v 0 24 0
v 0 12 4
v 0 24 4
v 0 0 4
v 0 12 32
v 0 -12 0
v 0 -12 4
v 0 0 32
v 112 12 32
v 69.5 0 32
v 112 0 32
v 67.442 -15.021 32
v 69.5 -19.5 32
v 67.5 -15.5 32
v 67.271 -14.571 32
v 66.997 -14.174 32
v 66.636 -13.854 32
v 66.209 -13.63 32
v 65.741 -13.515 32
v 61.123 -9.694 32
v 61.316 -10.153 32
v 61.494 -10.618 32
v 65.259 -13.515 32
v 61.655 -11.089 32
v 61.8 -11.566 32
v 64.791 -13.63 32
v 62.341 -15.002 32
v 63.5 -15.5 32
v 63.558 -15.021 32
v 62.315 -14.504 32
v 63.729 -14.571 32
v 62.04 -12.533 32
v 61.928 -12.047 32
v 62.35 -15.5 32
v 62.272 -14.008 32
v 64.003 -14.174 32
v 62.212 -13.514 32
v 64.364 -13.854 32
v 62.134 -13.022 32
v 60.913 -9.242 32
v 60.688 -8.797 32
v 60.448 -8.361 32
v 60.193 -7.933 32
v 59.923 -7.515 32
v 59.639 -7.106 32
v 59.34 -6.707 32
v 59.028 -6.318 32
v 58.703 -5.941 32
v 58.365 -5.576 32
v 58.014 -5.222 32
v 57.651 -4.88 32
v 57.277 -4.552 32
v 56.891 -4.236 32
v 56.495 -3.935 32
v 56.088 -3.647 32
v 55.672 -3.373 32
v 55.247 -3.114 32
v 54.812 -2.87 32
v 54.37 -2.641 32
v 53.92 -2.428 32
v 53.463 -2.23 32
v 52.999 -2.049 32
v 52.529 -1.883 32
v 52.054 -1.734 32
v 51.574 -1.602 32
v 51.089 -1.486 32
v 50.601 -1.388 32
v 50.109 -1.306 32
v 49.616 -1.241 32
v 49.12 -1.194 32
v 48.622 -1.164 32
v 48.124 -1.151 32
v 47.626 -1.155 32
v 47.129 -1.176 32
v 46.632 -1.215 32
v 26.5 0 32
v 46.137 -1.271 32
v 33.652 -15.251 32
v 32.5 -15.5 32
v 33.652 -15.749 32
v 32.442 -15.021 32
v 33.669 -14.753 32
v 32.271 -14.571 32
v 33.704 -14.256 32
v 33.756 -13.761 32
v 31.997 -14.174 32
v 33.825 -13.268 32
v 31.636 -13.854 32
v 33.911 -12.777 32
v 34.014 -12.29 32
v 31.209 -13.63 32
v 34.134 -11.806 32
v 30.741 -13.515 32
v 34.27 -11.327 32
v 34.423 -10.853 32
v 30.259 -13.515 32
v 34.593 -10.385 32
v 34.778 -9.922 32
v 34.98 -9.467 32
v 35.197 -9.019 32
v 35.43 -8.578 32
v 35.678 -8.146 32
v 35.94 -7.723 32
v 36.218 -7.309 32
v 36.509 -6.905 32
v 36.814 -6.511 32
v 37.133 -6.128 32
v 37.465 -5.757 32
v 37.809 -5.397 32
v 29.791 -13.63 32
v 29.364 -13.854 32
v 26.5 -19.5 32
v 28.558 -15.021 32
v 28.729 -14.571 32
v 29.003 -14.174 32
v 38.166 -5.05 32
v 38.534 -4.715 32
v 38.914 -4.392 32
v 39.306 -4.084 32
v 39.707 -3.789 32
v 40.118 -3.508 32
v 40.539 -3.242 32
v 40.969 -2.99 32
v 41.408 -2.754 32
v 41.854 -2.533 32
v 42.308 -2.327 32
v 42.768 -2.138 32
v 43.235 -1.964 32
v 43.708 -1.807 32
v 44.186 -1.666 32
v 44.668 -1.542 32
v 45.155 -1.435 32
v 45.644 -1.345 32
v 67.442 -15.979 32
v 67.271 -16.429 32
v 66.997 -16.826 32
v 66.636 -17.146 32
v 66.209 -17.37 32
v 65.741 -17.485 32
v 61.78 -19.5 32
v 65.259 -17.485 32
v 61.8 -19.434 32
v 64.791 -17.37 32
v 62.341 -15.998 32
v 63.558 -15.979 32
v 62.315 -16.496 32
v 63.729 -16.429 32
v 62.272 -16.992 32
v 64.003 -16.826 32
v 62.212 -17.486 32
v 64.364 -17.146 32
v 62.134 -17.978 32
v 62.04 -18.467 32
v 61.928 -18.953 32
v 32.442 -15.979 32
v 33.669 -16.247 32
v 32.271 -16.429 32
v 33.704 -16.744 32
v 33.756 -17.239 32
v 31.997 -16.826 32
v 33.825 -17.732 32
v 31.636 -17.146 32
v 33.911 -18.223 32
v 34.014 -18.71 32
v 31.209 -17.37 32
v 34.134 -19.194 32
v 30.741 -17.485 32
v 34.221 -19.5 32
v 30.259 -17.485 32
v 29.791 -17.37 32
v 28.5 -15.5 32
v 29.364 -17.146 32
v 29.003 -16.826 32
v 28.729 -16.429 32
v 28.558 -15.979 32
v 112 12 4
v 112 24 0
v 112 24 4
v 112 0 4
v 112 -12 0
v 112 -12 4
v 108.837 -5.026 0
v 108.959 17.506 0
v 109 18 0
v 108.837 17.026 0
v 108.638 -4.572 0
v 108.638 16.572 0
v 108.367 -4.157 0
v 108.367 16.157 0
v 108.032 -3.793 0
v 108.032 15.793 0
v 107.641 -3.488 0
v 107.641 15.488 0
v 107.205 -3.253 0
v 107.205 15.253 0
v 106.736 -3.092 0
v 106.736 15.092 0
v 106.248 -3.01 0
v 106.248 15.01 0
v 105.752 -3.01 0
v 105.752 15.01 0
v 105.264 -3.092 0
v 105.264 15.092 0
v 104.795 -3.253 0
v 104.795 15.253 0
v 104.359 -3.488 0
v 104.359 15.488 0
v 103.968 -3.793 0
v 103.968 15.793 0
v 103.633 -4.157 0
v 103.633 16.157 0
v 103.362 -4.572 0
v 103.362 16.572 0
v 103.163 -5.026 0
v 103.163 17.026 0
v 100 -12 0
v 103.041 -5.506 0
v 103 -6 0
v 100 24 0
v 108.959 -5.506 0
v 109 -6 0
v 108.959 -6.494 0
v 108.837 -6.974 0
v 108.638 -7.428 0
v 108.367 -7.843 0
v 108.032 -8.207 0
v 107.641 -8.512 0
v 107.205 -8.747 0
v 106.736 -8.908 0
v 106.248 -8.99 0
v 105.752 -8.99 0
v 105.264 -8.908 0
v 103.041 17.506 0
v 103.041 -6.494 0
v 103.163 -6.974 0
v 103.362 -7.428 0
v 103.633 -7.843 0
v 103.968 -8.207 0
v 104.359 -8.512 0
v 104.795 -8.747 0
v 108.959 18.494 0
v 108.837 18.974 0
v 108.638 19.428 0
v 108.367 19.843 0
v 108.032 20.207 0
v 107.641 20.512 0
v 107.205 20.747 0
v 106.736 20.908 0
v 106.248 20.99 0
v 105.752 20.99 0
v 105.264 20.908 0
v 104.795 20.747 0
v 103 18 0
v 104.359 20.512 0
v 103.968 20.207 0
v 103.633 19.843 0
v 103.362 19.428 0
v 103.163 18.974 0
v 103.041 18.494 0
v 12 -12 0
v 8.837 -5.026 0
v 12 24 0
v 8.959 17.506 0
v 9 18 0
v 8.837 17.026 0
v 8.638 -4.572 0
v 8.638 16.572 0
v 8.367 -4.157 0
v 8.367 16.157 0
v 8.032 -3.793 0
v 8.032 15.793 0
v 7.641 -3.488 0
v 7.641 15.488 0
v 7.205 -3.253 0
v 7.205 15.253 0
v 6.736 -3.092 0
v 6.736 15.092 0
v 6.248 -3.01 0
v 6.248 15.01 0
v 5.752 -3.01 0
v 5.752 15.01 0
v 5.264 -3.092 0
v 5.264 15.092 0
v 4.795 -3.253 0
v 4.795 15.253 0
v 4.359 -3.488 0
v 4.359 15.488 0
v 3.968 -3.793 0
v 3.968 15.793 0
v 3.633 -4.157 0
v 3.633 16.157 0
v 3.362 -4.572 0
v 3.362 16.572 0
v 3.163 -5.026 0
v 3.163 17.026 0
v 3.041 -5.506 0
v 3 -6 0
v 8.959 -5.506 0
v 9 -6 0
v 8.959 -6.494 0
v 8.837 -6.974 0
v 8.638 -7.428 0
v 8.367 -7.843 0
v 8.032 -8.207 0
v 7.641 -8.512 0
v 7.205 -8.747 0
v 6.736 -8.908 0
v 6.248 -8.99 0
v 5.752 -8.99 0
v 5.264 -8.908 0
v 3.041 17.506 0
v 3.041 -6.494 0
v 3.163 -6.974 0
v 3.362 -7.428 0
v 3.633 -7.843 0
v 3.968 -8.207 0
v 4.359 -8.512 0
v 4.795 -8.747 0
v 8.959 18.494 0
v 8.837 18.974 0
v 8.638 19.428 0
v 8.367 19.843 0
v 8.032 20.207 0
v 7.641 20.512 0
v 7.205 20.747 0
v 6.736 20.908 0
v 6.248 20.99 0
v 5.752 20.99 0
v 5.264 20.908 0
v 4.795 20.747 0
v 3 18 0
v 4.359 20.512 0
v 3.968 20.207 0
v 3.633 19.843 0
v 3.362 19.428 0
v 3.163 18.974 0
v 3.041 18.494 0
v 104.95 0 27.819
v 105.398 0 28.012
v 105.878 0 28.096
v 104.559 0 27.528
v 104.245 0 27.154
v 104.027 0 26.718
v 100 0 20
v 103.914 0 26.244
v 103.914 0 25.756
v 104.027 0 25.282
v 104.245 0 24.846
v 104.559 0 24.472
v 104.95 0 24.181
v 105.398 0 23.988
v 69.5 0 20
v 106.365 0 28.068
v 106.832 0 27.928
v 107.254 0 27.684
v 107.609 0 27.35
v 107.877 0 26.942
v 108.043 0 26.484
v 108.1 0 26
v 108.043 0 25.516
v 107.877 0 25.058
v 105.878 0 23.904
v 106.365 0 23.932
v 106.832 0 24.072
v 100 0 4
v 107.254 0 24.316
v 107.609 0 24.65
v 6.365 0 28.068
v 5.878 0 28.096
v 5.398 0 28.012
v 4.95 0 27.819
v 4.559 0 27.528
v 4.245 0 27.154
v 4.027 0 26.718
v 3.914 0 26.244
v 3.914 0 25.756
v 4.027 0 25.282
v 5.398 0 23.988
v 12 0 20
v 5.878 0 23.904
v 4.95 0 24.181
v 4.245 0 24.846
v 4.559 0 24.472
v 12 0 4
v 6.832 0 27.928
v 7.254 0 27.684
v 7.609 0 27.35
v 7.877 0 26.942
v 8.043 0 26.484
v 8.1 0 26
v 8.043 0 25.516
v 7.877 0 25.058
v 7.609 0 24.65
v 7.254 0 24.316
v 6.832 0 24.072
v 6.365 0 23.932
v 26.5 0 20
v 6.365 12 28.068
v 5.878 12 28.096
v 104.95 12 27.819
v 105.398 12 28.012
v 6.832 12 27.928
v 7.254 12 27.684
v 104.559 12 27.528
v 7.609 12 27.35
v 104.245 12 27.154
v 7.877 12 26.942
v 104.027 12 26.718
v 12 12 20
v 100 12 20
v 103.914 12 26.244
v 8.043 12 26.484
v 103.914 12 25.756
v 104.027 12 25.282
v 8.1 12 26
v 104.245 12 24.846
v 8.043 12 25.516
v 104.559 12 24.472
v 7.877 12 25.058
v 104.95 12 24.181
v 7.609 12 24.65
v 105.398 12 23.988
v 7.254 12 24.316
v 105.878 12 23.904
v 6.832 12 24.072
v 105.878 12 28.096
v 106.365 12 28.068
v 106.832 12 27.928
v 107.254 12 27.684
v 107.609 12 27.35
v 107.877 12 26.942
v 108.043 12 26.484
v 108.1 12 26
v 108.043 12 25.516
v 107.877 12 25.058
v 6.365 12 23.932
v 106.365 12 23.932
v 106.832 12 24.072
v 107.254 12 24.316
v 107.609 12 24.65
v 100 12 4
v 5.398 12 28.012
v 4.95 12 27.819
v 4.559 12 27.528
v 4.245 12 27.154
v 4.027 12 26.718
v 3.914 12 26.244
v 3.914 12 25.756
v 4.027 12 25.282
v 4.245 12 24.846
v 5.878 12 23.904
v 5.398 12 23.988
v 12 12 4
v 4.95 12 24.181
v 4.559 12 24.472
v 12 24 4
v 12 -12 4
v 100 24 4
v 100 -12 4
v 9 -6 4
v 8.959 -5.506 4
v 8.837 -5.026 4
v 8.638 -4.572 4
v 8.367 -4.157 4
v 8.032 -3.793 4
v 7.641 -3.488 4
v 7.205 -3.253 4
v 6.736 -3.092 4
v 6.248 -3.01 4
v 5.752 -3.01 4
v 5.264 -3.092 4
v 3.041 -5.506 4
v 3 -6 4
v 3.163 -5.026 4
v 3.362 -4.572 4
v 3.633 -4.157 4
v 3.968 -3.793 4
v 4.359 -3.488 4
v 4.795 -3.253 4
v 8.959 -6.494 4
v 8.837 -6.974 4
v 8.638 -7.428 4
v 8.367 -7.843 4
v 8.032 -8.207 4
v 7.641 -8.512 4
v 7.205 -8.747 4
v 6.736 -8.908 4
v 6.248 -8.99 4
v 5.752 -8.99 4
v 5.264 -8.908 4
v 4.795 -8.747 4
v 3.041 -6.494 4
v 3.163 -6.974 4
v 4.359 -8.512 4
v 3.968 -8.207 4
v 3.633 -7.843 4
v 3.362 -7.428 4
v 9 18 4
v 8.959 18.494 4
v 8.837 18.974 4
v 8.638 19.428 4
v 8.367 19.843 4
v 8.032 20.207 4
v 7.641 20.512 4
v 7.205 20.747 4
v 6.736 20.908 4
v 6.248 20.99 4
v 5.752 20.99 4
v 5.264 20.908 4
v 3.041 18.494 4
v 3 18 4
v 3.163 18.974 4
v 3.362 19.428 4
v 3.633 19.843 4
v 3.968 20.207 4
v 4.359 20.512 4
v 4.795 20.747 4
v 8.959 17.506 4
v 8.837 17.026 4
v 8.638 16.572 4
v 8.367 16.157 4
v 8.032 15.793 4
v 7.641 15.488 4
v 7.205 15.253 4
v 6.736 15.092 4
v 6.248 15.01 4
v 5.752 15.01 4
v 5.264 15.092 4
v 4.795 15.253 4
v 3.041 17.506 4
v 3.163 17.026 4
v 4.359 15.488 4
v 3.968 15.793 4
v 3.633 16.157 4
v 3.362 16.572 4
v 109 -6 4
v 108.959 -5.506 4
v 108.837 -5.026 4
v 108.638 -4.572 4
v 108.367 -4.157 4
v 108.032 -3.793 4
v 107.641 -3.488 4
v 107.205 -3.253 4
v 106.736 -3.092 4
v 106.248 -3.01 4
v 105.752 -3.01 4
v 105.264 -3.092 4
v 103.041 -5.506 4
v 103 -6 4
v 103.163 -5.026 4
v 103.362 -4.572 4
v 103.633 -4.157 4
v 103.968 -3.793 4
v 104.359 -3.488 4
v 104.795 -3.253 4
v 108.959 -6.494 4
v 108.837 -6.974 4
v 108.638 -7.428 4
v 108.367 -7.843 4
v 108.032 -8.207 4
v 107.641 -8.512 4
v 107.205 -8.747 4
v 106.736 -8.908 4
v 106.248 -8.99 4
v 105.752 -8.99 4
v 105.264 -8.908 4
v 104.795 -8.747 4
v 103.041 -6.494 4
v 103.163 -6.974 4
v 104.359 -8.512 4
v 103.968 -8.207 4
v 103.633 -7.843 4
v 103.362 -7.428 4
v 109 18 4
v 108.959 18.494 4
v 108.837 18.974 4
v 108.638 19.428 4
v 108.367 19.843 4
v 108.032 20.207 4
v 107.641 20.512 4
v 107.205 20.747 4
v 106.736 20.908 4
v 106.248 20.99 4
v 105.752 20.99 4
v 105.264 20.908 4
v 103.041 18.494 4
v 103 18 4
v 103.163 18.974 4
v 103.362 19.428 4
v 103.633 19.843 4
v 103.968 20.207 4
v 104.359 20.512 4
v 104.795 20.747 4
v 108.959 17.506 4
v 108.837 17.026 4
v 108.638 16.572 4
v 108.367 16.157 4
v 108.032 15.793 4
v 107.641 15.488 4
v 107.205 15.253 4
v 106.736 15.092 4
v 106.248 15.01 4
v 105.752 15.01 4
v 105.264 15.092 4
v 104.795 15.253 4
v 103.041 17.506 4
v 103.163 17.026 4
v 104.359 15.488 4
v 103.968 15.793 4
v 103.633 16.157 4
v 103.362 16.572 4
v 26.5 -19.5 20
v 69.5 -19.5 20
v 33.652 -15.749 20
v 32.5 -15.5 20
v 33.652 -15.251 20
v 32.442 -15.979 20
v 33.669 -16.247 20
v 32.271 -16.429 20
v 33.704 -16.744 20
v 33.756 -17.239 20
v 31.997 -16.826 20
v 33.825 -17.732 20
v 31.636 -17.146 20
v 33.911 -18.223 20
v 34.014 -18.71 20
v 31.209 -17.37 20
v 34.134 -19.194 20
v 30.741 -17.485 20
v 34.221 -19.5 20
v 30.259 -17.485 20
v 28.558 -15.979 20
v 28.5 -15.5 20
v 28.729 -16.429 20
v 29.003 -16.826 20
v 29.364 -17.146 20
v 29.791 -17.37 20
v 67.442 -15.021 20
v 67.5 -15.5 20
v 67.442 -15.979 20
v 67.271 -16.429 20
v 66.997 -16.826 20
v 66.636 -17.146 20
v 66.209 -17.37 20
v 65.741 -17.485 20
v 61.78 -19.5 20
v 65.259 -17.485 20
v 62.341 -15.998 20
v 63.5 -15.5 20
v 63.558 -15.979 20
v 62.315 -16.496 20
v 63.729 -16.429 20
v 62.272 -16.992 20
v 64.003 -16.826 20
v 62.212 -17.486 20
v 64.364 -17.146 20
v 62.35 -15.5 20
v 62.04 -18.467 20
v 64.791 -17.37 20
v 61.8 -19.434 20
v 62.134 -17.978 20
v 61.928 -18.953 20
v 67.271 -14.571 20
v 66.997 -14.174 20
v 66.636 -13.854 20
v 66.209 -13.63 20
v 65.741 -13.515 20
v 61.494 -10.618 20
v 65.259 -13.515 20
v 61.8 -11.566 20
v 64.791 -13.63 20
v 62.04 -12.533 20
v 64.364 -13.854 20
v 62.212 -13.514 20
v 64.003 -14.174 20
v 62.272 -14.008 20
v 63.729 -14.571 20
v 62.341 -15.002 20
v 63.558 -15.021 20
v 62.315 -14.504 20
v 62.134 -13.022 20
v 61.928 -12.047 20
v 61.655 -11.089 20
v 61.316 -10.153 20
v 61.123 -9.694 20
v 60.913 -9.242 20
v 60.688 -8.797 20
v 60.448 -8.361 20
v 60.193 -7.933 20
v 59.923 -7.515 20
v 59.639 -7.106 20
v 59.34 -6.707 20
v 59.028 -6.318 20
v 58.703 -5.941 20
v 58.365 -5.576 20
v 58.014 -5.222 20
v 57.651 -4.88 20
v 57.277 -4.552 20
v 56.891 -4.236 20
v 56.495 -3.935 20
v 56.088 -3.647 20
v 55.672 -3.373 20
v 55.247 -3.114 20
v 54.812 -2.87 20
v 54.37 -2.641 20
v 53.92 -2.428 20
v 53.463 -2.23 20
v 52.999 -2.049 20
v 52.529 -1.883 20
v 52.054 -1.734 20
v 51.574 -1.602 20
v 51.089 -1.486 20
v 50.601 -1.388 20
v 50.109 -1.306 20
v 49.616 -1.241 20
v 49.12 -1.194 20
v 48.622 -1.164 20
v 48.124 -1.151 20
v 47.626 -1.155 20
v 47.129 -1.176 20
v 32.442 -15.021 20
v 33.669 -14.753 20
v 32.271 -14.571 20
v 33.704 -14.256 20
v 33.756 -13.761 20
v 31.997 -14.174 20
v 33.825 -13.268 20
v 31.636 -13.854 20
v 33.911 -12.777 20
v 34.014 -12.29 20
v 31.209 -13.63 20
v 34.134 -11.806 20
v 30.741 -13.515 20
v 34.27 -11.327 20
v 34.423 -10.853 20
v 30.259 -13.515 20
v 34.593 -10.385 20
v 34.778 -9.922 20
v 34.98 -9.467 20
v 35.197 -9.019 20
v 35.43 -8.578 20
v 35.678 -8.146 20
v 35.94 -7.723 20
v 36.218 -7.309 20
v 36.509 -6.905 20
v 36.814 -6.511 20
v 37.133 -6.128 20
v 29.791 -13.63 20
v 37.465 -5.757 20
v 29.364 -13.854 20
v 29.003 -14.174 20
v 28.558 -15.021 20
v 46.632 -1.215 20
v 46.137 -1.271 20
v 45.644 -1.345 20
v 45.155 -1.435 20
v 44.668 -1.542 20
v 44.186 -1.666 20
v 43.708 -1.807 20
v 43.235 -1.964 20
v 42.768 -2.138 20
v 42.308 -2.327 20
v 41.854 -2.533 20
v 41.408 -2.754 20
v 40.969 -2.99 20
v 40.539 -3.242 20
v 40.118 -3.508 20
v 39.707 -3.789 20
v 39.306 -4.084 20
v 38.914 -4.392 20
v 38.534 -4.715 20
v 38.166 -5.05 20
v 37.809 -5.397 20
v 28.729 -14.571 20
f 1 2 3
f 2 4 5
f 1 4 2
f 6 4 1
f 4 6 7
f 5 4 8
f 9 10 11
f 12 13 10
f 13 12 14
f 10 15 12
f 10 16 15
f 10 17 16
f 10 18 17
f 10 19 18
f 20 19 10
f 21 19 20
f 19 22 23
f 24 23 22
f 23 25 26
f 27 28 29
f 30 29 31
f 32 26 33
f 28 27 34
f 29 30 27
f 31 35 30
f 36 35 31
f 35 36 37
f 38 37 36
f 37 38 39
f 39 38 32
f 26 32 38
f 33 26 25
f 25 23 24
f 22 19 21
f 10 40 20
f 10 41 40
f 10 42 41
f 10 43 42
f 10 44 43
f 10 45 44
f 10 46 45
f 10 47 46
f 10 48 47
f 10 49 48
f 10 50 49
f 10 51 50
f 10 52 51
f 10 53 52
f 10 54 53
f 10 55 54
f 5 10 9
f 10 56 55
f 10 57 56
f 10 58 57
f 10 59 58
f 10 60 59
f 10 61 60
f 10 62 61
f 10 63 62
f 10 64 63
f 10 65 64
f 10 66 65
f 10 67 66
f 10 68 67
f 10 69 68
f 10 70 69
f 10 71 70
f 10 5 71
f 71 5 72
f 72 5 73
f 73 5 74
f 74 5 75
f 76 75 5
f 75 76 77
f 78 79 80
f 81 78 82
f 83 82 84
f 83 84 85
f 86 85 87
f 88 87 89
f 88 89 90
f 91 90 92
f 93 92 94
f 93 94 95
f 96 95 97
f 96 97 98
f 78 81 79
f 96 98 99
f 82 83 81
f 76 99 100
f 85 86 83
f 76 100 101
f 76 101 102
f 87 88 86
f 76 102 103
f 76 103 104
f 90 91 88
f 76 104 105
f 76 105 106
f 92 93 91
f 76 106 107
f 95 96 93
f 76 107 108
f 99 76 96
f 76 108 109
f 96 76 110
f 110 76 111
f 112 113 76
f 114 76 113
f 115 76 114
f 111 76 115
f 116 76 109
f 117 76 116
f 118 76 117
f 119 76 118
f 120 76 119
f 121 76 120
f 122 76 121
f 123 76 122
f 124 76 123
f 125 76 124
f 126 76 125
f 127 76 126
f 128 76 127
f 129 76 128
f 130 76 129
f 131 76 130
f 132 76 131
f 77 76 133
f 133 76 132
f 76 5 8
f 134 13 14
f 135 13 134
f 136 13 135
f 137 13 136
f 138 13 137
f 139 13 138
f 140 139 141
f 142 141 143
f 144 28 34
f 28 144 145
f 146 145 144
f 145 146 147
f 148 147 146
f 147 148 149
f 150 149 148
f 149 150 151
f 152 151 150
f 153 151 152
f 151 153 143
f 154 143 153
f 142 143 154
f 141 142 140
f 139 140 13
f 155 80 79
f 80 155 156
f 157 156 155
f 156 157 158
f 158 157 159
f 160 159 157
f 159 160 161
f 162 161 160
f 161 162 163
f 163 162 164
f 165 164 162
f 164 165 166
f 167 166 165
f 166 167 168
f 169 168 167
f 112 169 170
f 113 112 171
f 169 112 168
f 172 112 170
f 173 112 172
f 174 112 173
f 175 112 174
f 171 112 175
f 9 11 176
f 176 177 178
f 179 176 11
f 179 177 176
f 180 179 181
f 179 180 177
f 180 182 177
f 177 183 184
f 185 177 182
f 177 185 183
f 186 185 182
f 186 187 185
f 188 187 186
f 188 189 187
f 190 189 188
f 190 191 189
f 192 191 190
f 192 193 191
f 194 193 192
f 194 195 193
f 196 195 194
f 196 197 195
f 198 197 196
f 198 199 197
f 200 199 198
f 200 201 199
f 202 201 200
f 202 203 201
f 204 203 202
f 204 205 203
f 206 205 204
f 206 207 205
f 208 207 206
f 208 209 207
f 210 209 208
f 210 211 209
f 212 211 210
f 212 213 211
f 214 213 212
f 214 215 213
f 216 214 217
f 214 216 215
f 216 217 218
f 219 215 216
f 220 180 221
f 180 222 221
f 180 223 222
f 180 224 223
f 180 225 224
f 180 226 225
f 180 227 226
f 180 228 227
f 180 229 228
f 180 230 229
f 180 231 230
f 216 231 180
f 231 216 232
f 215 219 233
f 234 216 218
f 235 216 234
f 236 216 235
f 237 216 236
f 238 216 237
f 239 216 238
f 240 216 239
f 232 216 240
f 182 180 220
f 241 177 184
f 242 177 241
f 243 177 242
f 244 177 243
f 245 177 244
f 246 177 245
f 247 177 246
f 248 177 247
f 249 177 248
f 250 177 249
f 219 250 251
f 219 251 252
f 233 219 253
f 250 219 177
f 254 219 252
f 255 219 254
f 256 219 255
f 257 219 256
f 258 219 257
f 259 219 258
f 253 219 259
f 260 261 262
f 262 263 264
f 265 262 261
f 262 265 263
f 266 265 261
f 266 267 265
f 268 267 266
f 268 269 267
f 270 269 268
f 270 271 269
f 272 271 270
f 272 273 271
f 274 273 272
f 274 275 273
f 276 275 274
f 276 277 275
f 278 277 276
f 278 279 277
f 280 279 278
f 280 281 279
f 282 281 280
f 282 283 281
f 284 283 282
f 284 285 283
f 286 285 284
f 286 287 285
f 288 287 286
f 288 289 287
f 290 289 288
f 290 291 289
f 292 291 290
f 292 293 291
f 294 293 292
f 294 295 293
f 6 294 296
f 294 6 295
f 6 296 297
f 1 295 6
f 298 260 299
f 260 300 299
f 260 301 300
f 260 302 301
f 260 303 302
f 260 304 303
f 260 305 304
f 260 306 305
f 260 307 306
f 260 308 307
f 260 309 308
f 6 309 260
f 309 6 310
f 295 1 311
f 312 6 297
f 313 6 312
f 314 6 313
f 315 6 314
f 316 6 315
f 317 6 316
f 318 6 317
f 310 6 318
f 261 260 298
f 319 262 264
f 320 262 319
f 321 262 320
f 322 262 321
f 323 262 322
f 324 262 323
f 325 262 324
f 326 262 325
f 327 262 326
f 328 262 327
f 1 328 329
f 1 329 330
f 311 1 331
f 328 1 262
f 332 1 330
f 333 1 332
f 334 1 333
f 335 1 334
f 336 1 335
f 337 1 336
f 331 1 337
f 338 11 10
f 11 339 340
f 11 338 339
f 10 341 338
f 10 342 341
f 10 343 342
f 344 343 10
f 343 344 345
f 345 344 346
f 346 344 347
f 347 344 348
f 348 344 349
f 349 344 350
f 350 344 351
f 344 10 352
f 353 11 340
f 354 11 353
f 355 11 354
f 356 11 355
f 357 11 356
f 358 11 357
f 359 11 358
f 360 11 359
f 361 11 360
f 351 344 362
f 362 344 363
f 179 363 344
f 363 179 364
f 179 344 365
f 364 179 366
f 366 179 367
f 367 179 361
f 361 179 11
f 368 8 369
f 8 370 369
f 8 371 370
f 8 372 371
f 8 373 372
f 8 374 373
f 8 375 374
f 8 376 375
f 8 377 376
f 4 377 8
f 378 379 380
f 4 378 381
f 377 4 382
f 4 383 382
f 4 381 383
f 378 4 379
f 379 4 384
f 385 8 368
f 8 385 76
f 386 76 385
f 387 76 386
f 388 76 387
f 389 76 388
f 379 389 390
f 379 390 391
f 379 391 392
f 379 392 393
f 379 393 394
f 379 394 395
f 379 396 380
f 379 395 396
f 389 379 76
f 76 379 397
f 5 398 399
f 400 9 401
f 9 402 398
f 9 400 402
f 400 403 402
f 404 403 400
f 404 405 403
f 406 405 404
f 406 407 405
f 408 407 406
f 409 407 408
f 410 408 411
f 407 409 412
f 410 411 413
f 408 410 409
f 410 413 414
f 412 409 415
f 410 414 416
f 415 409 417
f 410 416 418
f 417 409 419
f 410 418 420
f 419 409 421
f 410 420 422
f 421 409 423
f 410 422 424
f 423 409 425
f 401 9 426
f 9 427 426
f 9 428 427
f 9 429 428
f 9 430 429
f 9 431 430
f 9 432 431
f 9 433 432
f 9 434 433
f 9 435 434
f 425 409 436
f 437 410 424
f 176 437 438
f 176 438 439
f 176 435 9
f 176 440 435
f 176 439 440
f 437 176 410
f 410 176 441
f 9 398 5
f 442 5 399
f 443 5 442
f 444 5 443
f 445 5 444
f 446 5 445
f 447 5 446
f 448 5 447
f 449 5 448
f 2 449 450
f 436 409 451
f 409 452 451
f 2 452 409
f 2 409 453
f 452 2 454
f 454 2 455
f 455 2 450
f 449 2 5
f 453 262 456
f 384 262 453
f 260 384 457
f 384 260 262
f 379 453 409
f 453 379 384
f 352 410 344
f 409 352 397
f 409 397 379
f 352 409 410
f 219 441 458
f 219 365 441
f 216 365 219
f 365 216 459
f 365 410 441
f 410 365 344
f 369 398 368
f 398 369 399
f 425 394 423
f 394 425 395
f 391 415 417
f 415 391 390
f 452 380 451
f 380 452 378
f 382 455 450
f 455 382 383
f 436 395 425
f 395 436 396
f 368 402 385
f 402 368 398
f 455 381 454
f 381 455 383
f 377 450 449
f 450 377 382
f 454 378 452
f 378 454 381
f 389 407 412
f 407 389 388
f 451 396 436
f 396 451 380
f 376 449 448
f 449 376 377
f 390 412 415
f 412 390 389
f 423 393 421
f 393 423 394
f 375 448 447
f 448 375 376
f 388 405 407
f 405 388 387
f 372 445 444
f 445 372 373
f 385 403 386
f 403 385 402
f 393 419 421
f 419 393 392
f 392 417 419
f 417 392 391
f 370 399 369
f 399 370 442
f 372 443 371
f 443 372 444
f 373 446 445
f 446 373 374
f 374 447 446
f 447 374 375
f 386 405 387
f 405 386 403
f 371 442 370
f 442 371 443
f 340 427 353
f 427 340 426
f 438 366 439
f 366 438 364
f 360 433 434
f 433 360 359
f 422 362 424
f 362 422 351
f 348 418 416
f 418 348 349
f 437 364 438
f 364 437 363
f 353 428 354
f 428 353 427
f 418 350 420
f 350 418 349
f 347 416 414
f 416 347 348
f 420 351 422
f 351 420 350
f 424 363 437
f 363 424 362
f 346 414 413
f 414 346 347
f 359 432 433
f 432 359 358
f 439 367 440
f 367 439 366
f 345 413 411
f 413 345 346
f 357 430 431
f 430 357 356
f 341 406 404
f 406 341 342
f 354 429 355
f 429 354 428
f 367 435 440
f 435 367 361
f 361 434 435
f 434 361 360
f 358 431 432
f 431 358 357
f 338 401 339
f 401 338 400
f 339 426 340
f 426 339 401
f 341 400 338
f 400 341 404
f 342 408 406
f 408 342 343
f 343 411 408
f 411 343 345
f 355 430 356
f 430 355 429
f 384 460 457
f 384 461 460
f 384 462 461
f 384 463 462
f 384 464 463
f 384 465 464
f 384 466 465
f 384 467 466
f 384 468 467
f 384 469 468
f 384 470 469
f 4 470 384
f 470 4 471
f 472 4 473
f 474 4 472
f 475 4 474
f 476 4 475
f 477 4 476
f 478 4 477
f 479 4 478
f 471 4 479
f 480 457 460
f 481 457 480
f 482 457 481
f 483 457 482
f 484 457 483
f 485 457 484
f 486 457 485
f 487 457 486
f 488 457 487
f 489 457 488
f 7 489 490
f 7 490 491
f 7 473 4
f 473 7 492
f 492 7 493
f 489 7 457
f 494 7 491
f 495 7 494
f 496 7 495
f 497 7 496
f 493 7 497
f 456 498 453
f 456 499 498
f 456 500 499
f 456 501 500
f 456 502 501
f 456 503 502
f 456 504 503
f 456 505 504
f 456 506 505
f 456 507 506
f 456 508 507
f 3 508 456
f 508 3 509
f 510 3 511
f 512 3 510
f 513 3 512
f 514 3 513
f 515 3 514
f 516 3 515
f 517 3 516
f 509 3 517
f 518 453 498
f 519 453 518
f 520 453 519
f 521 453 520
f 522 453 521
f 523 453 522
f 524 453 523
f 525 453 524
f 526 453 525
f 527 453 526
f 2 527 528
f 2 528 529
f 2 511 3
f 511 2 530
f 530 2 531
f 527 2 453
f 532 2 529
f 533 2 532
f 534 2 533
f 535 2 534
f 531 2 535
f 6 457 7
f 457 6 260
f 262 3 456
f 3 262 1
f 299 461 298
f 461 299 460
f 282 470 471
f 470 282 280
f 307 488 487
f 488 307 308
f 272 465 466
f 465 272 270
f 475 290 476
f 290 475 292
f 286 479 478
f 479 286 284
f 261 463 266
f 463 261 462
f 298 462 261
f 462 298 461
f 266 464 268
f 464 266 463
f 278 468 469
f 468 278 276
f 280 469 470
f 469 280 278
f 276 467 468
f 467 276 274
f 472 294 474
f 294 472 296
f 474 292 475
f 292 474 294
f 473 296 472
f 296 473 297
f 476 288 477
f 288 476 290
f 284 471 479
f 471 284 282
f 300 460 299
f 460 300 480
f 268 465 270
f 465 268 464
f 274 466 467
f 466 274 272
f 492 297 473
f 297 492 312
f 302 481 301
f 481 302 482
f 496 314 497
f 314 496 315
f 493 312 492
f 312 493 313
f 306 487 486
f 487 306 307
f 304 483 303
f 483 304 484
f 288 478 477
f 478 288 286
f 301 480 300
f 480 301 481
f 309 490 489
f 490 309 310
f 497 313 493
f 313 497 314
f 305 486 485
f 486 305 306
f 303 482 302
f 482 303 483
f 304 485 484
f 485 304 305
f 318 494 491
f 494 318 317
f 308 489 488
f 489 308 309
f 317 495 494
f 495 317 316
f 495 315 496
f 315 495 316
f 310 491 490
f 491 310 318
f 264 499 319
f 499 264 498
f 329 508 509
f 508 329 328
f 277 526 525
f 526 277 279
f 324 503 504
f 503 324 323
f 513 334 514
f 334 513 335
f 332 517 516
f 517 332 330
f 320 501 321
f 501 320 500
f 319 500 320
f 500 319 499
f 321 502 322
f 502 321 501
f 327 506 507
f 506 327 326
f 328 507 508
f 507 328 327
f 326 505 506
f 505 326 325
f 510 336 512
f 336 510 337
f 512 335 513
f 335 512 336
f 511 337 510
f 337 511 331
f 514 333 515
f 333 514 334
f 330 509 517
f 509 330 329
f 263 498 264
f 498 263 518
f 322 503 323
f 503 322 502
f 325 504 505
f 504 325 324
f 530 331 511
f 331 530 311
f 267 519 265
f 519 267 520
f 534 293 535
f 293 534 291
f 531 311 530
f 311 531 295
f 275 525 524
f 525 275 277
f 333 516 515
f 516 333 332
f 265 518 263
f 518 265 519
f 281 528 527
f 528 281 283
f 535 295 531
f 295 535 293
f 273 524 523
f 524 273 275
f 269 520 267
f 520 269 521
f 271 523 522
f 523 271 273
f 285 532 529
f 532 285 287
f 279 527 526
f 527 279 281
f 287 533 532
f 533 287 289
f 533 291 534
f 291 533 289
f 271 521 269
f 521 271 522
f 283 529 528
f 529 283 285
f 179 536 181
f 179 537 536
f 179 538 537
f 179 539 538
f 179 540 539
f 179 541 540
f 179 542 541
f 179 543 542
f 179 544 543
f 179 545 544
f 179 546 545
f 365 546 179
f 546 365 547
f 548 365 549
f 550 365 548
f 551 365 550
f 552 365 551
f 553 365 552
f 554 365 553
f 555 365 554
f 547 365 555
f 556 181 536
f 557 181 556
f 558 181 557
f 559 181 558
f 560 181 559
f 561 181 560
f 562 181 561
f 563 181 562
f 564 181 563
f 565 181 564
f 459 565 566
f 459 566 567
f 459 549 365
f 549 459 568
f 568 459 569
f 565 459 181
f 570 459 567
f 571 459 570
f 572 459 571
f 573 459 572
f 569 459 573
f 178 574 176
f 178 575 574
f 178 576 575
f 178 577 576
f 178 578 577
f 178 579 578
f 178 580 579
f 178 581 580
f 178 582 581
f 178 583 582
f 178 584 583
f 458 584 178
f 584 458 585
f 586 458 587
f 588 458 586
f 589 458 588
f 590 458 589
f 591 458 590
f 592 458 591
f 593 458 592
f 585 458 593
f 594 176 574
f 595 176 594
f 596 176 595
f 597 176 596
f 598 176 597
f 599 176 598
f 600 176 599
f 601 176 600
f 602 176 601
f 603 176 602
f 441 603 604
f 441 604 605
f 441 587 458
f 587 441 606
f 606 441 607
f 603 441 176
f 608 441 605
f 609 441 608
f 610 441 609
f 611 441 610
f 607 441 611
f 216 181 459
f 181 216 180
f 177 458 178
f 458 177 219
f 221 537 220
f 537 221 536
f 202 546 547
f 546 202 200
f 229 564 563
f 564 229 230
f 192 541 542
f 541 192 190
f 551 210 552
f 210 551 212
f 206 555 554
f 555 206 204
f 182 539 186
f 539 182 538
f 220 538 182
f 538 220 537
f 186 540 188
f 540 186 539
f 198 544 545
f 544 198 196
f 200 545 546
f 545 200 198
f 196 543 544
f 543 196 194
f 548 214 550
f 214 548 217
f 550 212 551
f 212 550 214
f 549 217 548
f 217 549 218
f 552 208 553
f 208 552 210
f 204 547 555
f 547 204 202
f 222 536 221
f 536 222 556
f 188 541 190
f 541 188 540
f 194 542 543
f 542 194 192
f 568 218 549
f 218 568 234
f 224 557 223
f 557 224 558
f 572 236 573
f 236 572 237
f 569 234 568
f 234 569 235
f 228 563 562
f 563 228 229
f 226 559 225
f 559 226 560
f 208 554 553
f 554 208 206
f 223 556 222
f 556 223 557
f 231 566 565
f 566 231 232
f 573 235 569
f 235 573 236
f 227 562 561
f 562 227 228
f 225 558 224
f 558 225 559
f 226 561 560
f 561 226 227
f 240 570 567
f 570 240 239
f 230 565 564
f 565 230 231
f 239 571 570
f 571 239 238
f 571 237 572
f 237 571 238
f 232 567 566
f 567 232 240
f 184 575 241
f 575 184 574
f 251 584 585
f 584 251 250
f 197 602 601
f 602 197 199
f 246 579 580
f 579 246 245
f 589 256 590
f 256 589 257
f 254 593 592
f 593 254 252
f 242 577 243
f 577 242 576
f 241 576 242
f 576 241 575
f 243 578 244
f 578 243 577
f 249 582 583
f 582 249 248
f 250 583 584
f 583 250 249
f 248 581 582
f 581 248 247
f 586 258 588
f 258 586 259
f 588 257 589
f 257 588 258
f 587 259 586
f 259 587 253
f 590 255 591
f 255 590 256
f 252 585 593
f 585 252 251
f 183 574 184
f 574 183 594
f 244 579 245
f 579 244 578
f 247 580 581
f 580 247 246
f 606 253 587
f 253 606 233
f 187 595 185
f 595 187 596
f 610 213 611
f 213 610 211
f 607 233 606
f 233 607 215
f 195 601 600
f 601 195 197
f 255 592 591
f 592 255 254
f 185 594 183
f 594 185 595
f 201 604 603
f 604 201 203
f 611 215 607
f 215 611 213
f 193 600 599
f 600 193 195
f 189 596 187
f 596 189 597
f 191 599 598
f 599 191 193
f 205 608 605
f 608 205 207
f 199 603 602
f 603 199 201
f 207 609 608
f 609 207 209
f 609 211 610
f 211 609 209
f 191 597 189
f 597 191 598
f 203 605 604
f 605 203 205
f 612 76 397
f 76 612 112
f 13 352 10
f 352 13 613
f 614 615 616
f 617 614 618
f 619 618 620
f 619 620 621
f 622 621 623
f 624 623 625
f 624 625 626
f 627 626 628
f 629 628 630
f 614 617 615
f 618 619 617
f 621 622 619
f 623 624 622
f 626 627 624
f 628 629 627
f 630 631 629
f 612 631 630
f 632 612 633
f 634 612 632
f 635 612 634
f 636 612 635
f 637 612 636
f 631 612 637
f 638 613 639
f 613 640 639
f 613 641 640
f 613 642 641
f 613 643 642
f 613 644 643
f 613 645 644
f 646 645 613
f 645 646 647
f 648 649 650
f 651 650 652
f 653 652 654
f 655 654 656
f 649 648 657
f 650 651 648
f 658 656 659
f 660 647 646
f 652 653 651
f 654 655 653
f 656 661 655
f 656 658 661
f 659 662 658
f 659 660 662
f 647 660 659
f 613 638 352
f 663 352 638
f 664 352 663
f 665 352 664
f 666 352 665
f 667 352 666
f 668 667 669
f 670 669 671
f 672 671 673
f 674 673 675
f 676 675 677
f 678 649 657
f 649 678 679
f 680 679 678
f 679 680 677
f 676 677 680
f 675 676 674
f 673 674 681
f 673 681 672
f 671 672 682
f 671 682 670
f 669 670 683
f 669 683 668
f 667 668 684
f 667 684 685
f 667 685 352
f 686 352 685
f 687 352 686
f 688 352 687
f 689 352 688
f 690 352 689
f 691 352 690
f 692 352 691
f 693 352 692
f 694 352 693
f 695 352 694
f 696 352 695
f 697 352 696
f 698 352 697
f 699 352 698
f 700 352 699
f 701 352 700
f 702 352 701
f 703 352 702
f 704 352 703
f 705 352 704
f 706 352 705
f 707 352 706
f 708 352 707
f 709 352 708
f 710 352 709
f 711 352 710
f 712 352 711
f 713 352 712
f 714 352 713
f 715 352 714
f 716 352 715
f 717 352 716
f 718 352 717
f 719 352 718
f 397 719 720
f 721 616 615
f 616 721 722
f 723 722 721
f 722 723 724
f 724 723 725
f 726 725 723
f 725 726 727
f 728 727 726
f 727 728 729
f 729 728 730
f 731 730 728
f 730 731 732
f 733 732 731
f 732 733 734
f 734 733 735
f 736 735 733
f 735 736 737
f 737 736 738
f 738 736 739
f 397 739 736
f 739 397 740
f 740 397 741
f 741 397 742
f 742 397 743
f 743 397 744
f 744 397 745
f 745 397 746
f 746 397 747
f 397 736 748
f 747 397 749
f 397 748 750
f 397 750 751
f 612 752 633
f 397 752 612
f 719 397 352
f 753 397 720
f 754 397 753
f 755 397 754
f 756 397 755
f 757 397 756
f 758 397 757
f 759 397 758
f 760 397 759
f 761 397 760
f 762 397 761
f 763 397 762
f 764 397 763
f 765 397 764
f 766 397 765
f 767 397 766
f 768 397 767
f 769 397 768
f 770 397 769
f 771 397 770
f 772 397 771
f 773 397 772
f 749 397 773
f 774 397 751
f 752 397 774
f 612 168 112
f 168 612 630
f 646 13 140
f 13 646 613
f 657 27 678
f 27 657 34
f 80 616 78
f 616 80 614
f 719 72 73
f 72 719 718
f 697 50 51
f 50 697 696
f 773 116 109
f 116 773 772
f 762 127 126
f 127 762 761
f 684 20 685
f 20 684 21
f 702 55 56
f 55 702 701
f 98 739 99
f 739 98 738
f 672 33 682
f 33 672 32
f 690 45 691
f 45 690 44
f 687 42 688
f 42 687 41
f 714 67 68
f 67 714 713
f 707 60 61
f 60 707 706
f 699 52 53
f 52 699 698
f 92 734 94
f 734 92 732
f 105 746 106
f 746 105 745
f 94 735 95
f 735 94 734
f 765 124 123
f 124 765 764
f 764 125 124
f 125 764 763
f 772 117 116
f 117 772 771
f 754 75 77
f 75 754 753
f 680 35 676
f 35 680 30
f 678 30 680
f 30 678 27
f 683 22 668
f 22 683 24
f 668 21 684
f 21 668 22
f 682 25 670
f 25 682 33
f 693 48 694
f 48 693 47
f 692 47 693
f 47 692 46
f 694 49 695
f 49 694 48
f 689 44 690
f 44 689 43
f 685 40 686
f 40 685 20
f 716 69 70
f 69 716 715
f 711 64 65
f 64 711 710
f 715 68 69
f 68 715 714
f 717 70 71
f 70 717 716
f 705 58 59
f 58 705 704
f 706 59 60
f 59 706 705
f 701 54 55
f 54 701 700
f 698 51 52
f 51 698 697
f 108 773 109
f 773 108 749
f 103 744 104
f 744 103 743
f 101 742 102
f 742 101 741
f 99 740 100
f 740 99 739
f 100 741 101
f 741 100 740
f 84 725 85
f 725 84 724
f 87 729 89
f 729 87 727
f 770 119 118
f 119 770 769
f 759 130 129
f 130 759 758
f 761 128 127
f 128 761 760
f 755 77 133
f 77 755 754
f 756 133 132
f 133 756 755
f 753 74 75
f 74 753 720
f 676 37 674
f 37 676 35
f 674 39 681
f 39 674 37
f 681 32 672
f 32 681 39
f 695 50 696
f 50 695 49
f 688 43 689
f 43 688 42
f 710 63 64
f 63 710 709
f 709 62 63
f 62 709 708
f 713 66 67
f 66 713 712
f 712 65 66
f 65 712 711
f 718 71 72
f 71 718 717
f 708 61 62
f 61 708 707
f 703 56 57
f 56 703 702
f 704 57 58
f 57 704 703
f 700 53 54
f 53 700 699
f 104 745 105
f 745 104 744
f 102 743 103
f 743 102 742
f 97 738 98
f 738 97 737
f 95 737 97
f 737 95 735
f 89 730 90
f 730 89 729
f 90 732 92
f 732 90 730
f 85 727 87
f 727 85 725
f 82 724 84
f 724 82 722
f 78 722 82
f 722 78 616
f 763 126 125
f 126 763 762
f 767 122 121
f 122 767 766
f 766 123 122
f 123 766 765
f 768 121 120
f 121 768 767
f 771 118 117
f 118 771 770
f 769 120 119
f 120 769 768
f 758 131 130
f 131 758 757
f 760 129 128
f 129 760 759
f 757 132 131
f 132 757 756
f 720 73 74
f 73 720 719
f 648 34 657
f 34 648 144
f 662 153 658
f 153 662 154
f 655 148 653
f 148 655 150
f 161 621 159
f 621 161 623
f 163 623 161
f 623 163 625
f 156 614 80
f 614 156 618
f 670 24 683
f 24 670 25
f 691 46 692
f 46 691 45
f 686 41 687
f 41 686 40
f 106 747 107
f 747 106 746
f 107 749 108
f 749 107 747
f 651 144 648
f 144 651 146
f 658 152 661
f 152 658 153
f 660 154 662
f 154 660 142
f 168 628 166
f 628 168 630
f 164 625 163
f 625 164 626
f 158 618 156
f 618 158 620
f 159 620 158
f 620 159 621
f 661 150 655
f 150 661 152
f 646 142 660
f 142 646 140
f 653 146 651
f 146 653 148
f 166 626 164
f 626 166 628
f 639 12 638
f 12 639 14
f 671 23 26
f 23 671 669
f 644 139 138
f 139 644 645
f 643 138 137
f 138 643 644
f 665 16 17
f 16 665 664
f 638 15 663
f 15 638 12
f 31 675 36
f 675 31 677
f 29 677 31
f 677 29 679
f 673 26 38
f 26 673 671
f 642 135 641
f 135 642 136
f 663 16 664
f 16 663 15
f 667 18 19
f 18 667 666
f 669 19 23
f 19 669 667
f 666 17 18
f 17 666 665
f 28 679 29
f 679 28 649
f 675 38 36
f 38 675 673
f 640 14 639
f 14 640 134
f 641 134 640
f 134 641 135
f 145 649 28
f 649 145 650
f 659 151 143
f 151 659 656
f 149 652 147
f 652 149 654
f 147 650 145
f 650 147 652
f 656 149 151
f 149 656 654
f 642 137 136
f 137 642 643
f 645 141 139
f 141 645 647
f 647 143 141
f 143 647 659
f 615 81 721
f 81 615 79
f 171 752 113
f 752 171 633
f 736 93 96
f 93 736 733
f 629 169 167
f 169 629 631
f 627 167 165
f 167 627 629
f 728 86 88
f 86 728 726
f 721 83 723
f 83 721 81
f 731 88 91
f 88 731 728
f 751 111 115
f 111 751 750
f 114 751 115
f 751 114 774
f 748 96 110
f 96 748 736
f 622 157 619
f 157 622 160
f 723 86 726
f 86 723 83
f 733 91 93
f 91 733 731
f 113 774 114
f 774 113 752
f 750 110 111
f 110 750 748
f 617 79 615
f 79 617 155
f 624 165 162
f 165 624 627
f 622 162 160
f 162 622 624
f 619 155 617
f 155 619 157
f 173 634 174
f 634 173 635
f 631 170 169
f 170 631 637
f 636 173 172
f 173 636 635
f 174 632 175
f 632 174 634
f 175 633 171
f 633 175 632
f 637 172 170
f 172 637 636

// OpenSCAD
// file: threads.scad
// ============================================================
// threads.scad — Reusable metric thread library
// FDM-optimized trapezoidal thread profile
// ============================================================
// Usage:
//   metric_thread(diameter, pitch, length, internal, fn)
//   external_thread(d, pitch, length) — male screw thread
//   internal_thread(d, pitch, length) — female nut/hole thread
// ============================================================

// Thread tolerance compensation for FDM printing
// Add this to internal threads and subtract from external threads
FDM_CLEARANCE = 0.4; // mm — FDM tolerance gap (matches m20_bore in main_body.scad)

// M20 standard parameters
M20_DIAMETER = 20.0;
M20_PITCH    = 2.5;   // mm per revolution

// ============================================================
// Core thread module
// diameter  : nominal thread diameter (mm)
// pitch     : thread pitch (mm/rev) — positive float
// length    : total thread length along Z axis (mm)
// internal  : true = threaded hole (add clearance), false = bolt
// fn        : circle resolution (default 64)
// ============================================================
module metric_thread(diameter, pitch, length, internal = false, fn = 64) {
    // Actual radius with FDM compensation
    r_nom = diameter / 2;
    clearance = internal ? FDM_CLEARANCE : -FDM_CLEARANCE / 2;
    r = r_nom + clearance;

    // ISO metric thread geometry
    // Thread depth (radial) ≈ 0.6495 × pitch for 60° V-thread
    // We use a slightly shallower trapezoidal profile for printability
    depth = pitch * 0.55;  // slightly reduced for FDM

    // Number of full turns
    turns = length / pitch;

    // Steps per revolution
    steps = fn;
    total_steps = ceil(turns * steps);

    // Build helix using a series of rotated/translated trapezoid slices
    _metric_thread_solid(r, depth, pitch, length, internal, fn);
}

// Internal implementation using difference of cylinders with helical groove
module _metric_thread_solid(r, depth, pitch, length, internal, fn) {
    if (internal) {
        // For internal threads: start with cylinder, cut helical groove
        difference() {
            children();
            _helix_thread_cut(r + depth, depth, pitch, length, fn);
        }
    } else {
        // For external threads: cylinder with helical ridge
        union() {
            cylinder(r = r - depth, h = length, $fn = fn);
            _helix_thread_ridge(r, depth, pitch, length, fn);
        }
    }
}

// ============================================================
// Standalone external thread (male bolt thread)
// ============================================================
module external_thread(diameter, pitch, length, fn = 64) {
    r_nom = diameter / 2;
    r = r_nom - FDM_CLEARANCE / 2;
    depth = pitch * 0.55;
    r_root = r - depth;

    turns = length / pitch;
    steps_per_turn = fn;
    total_steps = ceil(turns * steps_per_turn);

    // Build helix polyhedron
    union() {
        cylinder(r = r_root, h = length, $fn = fn);
        _thread_helix(r_root, r, depth, pitch, length, fn, total_steps);
    }
}

// ============================================================
// Standalone internal thread (female hole — call inside difference())
// ============================================================
module internal_thread(diameter, pitch, length, fn = 64) {
    r_nom = diameter / 2;
    r = r_nom + FDM_CLEARANCE;
    depth = pitch * 0.55;
    r_crest = r + depth;

    turns = length / pitch;
    steps_per_turn = fn;
    total_steps = ceil(turns * steps_per_turn);

    _thread_helix(r, r_crest, depth, pitch, length, fn, total_steps);
    cylinder(r = r, h = length, $fn = fn);
}

// ============================================================
// Core helix builder — creates a helical ridge polyhedron
// r_root   : minor radius (root of thread)
// r_crest  : major radius (crest/peak of thread)
// depth    : radial thread depth = r_crest - r_root
// pitch    : axial pitch (mm/rev)
// length   : total axial length
// fn       : segments per revolution
// total    : total segment count
// ============================================================
module _thread_helix(r_root, r_crest, depth, pitch, length, fn, total) {
    // Build helix as polyhedron using 4-point quads per segment
    // Each segment: two points at start, two at end (root + crest)
    spr = fn; // steps per revolution
    dz = pitch / spr; // axial step per segment

    pts = [
        for (i = [0 : total]) let(
            a0 = i * 360 / spr,
            a1 = (i + 0.5) * 360 / spr,
            a2 = (i + 1) * 360 / spr,
            z0 = min(i * dz, length),
            zc = min((i + 0.5) * dz, length),
            z1 = min((i + 1) * dz, length)
        ) each [
            // [0] root at step start
            [r_root * cos(a0), r_root * sin(a0), z0],
            // [1] crest at step mid  
            [r_crest * cos(a1), r_crest * sin(a1), zc],
            // [2] root at step end
            [r_root * cos(a2), r_root * sin(a2), z1]
        ]
    ];

    // Faces: for each step i, connect pts[i*3+0..2] with pts[(i+1)*3+0..2]
    // This is complex; use a simpler sweep approach instead
    _simple_helix_thread(r_root, r_crest, pitch, length, fn);
}

// ============================================================
// Simple, robust helix thread using hull() of trapezoid slices
// ============================================================
module _simple_helix_thread(r_root, r_crest, pitch, length, fn) {
    steps_per_turn = fn;
    dangle = 360 / steps_per_turn;
    dz = pitch / steps_per_turn;
    total_steps = floor(length / dz);
    depth = r_crest - r_root;

    for (i = [0 : total_steps - 1]) {
        a0 = i * dangle;
        a1 = (i + 1) * dangle;
        z0 = i * dz;
        z1 = (i + 1) * dz;
        z_mid0 = z0 + dz / 4;
        z_mid1 = z0 + 3 * dz / 4;

        if (z1 <= length) {
            hull() {
                // Start trapezoid slice
                _thread_slice(r_root, r_crest, depth, a0, z0, dz / 2);
                // End trapezoid slice
                _thread_slice(r_root, r_crest, depth, a1, z0 + dz / 2, dz / 2);
            }
        }
    }
}

module _thread_slice(r_root, r_crest, depth, angle, z_base, dz) {
    // A thin trapezoid oriented at given angle and z position
    translate([0, 0, z_base])
    rotate([0, 0, angle])
    linear_extrude(height = 0.01, center = false)
    polygon([
        [r_root, -0.5],
        [r_crest, 0],
        [r_root, 0.5]
    ]);
}

// ============================================================
// Cut a helical groove (for internal threads)
// ============================================================
module _helix_thread_cut(r_crest, depth, pitch, length, fn) {
    r_root = r_crest - depth;
    // The cut is the groove shape swept helically
    // We use a slightly oversized version for clean internal threads
    _simple_helix_thread(r_root - 0.1, r_crest + 0.1, pitch, length + pitch, fn);
    // Also bore the minor cylinder
    cylinder(r = r_root, h = length + 0.2, center = false, $fn = fn);
}

// ============================================================
// Cut a helical groove (for internal threads) — standalone
// ============================================================
module _helix_thread_ridge(r, depth, pitch, length, fn) {
    r_root = r - depth;
    _simple_helix_thread(r_root, r, pitch, length, fn);
}
// main file
use <threads.scad>

module MotorMount(border_width=2, height=10, fit_factor=1.025) {
    // Motor Specifications
    motor_diameter=28;
    motor_height=20;
    hole_position=17.5;
    hole_radius=2;
    bracket_width=7;
    // Mount Definition
    translate([0,bracket_width/2,0])
    difference() {
        translate([-(hole_position+hole_radius+border_width),
            -hole_radius-border_width,0]) 
            cube([2*(hole_position+hole_radius+border_width),
                motor_diameter/2+bracket_width/2+border_width,height]);
        translate([0,0,-1]) cylinder(r=fit_factor*motor_diameter/2, h=motor_height);
        translate([hole_position, 0, -1]) cylinder(r=hole_radius, h=height+2);
        translate([-hole_position, 0, -1]) cylinder(r=hole_radius, h=height+2);
    }
}

module Structure(rod_separation=100, rod_radius=2,thickness=12, fit_factor=1.05) {
    motor_height=20;
    // foot pads module
    module FootPad(h=4) {
        difference() {
            translate([0,-thickness,0]) cube([thickness, 3*thickness, h]);
            translate([thickness/2, -thickness/2, -1]) 
                cylinder(r=thickness/4, h=h+2);
            translate([thickness/2, 3*thickness/2, -1]) 
                cylinder(r=thickness/4, h=h+2);
        }
    }
    
    // main structure
    difference() {
        cube([rod_separation+thickness, thickness, motor_height+thickness]);
        
        // under gap
        translate([thickness,-1,-1])
        cube([rod_separation-thickness,thickness+2, motor_height+1]);
        
        // rod holes
        translate([thickness/2, -1, motor_height+thickness/2]) 
        rotate([-90,0,0]) cylinder(r=fit_factor*rod_radius, h=thickness+2);
        translate([thickness/2+rod_separation, -1, motor_height+thickness/2]) 
        rotate([-90,0,0]) cylinder(r=fit_factor*rod_radius, h=thickness+2);
    }
    
    FootPad();
    translate([rod_separation, 0, 0]) FootPad();
}

module MotorAndRodMount() {
    Structure();
    translate([48, -19, 20]) MotorMount(height=12);
}

MotorAndRodMount($fs=.5, $fa=.5);
